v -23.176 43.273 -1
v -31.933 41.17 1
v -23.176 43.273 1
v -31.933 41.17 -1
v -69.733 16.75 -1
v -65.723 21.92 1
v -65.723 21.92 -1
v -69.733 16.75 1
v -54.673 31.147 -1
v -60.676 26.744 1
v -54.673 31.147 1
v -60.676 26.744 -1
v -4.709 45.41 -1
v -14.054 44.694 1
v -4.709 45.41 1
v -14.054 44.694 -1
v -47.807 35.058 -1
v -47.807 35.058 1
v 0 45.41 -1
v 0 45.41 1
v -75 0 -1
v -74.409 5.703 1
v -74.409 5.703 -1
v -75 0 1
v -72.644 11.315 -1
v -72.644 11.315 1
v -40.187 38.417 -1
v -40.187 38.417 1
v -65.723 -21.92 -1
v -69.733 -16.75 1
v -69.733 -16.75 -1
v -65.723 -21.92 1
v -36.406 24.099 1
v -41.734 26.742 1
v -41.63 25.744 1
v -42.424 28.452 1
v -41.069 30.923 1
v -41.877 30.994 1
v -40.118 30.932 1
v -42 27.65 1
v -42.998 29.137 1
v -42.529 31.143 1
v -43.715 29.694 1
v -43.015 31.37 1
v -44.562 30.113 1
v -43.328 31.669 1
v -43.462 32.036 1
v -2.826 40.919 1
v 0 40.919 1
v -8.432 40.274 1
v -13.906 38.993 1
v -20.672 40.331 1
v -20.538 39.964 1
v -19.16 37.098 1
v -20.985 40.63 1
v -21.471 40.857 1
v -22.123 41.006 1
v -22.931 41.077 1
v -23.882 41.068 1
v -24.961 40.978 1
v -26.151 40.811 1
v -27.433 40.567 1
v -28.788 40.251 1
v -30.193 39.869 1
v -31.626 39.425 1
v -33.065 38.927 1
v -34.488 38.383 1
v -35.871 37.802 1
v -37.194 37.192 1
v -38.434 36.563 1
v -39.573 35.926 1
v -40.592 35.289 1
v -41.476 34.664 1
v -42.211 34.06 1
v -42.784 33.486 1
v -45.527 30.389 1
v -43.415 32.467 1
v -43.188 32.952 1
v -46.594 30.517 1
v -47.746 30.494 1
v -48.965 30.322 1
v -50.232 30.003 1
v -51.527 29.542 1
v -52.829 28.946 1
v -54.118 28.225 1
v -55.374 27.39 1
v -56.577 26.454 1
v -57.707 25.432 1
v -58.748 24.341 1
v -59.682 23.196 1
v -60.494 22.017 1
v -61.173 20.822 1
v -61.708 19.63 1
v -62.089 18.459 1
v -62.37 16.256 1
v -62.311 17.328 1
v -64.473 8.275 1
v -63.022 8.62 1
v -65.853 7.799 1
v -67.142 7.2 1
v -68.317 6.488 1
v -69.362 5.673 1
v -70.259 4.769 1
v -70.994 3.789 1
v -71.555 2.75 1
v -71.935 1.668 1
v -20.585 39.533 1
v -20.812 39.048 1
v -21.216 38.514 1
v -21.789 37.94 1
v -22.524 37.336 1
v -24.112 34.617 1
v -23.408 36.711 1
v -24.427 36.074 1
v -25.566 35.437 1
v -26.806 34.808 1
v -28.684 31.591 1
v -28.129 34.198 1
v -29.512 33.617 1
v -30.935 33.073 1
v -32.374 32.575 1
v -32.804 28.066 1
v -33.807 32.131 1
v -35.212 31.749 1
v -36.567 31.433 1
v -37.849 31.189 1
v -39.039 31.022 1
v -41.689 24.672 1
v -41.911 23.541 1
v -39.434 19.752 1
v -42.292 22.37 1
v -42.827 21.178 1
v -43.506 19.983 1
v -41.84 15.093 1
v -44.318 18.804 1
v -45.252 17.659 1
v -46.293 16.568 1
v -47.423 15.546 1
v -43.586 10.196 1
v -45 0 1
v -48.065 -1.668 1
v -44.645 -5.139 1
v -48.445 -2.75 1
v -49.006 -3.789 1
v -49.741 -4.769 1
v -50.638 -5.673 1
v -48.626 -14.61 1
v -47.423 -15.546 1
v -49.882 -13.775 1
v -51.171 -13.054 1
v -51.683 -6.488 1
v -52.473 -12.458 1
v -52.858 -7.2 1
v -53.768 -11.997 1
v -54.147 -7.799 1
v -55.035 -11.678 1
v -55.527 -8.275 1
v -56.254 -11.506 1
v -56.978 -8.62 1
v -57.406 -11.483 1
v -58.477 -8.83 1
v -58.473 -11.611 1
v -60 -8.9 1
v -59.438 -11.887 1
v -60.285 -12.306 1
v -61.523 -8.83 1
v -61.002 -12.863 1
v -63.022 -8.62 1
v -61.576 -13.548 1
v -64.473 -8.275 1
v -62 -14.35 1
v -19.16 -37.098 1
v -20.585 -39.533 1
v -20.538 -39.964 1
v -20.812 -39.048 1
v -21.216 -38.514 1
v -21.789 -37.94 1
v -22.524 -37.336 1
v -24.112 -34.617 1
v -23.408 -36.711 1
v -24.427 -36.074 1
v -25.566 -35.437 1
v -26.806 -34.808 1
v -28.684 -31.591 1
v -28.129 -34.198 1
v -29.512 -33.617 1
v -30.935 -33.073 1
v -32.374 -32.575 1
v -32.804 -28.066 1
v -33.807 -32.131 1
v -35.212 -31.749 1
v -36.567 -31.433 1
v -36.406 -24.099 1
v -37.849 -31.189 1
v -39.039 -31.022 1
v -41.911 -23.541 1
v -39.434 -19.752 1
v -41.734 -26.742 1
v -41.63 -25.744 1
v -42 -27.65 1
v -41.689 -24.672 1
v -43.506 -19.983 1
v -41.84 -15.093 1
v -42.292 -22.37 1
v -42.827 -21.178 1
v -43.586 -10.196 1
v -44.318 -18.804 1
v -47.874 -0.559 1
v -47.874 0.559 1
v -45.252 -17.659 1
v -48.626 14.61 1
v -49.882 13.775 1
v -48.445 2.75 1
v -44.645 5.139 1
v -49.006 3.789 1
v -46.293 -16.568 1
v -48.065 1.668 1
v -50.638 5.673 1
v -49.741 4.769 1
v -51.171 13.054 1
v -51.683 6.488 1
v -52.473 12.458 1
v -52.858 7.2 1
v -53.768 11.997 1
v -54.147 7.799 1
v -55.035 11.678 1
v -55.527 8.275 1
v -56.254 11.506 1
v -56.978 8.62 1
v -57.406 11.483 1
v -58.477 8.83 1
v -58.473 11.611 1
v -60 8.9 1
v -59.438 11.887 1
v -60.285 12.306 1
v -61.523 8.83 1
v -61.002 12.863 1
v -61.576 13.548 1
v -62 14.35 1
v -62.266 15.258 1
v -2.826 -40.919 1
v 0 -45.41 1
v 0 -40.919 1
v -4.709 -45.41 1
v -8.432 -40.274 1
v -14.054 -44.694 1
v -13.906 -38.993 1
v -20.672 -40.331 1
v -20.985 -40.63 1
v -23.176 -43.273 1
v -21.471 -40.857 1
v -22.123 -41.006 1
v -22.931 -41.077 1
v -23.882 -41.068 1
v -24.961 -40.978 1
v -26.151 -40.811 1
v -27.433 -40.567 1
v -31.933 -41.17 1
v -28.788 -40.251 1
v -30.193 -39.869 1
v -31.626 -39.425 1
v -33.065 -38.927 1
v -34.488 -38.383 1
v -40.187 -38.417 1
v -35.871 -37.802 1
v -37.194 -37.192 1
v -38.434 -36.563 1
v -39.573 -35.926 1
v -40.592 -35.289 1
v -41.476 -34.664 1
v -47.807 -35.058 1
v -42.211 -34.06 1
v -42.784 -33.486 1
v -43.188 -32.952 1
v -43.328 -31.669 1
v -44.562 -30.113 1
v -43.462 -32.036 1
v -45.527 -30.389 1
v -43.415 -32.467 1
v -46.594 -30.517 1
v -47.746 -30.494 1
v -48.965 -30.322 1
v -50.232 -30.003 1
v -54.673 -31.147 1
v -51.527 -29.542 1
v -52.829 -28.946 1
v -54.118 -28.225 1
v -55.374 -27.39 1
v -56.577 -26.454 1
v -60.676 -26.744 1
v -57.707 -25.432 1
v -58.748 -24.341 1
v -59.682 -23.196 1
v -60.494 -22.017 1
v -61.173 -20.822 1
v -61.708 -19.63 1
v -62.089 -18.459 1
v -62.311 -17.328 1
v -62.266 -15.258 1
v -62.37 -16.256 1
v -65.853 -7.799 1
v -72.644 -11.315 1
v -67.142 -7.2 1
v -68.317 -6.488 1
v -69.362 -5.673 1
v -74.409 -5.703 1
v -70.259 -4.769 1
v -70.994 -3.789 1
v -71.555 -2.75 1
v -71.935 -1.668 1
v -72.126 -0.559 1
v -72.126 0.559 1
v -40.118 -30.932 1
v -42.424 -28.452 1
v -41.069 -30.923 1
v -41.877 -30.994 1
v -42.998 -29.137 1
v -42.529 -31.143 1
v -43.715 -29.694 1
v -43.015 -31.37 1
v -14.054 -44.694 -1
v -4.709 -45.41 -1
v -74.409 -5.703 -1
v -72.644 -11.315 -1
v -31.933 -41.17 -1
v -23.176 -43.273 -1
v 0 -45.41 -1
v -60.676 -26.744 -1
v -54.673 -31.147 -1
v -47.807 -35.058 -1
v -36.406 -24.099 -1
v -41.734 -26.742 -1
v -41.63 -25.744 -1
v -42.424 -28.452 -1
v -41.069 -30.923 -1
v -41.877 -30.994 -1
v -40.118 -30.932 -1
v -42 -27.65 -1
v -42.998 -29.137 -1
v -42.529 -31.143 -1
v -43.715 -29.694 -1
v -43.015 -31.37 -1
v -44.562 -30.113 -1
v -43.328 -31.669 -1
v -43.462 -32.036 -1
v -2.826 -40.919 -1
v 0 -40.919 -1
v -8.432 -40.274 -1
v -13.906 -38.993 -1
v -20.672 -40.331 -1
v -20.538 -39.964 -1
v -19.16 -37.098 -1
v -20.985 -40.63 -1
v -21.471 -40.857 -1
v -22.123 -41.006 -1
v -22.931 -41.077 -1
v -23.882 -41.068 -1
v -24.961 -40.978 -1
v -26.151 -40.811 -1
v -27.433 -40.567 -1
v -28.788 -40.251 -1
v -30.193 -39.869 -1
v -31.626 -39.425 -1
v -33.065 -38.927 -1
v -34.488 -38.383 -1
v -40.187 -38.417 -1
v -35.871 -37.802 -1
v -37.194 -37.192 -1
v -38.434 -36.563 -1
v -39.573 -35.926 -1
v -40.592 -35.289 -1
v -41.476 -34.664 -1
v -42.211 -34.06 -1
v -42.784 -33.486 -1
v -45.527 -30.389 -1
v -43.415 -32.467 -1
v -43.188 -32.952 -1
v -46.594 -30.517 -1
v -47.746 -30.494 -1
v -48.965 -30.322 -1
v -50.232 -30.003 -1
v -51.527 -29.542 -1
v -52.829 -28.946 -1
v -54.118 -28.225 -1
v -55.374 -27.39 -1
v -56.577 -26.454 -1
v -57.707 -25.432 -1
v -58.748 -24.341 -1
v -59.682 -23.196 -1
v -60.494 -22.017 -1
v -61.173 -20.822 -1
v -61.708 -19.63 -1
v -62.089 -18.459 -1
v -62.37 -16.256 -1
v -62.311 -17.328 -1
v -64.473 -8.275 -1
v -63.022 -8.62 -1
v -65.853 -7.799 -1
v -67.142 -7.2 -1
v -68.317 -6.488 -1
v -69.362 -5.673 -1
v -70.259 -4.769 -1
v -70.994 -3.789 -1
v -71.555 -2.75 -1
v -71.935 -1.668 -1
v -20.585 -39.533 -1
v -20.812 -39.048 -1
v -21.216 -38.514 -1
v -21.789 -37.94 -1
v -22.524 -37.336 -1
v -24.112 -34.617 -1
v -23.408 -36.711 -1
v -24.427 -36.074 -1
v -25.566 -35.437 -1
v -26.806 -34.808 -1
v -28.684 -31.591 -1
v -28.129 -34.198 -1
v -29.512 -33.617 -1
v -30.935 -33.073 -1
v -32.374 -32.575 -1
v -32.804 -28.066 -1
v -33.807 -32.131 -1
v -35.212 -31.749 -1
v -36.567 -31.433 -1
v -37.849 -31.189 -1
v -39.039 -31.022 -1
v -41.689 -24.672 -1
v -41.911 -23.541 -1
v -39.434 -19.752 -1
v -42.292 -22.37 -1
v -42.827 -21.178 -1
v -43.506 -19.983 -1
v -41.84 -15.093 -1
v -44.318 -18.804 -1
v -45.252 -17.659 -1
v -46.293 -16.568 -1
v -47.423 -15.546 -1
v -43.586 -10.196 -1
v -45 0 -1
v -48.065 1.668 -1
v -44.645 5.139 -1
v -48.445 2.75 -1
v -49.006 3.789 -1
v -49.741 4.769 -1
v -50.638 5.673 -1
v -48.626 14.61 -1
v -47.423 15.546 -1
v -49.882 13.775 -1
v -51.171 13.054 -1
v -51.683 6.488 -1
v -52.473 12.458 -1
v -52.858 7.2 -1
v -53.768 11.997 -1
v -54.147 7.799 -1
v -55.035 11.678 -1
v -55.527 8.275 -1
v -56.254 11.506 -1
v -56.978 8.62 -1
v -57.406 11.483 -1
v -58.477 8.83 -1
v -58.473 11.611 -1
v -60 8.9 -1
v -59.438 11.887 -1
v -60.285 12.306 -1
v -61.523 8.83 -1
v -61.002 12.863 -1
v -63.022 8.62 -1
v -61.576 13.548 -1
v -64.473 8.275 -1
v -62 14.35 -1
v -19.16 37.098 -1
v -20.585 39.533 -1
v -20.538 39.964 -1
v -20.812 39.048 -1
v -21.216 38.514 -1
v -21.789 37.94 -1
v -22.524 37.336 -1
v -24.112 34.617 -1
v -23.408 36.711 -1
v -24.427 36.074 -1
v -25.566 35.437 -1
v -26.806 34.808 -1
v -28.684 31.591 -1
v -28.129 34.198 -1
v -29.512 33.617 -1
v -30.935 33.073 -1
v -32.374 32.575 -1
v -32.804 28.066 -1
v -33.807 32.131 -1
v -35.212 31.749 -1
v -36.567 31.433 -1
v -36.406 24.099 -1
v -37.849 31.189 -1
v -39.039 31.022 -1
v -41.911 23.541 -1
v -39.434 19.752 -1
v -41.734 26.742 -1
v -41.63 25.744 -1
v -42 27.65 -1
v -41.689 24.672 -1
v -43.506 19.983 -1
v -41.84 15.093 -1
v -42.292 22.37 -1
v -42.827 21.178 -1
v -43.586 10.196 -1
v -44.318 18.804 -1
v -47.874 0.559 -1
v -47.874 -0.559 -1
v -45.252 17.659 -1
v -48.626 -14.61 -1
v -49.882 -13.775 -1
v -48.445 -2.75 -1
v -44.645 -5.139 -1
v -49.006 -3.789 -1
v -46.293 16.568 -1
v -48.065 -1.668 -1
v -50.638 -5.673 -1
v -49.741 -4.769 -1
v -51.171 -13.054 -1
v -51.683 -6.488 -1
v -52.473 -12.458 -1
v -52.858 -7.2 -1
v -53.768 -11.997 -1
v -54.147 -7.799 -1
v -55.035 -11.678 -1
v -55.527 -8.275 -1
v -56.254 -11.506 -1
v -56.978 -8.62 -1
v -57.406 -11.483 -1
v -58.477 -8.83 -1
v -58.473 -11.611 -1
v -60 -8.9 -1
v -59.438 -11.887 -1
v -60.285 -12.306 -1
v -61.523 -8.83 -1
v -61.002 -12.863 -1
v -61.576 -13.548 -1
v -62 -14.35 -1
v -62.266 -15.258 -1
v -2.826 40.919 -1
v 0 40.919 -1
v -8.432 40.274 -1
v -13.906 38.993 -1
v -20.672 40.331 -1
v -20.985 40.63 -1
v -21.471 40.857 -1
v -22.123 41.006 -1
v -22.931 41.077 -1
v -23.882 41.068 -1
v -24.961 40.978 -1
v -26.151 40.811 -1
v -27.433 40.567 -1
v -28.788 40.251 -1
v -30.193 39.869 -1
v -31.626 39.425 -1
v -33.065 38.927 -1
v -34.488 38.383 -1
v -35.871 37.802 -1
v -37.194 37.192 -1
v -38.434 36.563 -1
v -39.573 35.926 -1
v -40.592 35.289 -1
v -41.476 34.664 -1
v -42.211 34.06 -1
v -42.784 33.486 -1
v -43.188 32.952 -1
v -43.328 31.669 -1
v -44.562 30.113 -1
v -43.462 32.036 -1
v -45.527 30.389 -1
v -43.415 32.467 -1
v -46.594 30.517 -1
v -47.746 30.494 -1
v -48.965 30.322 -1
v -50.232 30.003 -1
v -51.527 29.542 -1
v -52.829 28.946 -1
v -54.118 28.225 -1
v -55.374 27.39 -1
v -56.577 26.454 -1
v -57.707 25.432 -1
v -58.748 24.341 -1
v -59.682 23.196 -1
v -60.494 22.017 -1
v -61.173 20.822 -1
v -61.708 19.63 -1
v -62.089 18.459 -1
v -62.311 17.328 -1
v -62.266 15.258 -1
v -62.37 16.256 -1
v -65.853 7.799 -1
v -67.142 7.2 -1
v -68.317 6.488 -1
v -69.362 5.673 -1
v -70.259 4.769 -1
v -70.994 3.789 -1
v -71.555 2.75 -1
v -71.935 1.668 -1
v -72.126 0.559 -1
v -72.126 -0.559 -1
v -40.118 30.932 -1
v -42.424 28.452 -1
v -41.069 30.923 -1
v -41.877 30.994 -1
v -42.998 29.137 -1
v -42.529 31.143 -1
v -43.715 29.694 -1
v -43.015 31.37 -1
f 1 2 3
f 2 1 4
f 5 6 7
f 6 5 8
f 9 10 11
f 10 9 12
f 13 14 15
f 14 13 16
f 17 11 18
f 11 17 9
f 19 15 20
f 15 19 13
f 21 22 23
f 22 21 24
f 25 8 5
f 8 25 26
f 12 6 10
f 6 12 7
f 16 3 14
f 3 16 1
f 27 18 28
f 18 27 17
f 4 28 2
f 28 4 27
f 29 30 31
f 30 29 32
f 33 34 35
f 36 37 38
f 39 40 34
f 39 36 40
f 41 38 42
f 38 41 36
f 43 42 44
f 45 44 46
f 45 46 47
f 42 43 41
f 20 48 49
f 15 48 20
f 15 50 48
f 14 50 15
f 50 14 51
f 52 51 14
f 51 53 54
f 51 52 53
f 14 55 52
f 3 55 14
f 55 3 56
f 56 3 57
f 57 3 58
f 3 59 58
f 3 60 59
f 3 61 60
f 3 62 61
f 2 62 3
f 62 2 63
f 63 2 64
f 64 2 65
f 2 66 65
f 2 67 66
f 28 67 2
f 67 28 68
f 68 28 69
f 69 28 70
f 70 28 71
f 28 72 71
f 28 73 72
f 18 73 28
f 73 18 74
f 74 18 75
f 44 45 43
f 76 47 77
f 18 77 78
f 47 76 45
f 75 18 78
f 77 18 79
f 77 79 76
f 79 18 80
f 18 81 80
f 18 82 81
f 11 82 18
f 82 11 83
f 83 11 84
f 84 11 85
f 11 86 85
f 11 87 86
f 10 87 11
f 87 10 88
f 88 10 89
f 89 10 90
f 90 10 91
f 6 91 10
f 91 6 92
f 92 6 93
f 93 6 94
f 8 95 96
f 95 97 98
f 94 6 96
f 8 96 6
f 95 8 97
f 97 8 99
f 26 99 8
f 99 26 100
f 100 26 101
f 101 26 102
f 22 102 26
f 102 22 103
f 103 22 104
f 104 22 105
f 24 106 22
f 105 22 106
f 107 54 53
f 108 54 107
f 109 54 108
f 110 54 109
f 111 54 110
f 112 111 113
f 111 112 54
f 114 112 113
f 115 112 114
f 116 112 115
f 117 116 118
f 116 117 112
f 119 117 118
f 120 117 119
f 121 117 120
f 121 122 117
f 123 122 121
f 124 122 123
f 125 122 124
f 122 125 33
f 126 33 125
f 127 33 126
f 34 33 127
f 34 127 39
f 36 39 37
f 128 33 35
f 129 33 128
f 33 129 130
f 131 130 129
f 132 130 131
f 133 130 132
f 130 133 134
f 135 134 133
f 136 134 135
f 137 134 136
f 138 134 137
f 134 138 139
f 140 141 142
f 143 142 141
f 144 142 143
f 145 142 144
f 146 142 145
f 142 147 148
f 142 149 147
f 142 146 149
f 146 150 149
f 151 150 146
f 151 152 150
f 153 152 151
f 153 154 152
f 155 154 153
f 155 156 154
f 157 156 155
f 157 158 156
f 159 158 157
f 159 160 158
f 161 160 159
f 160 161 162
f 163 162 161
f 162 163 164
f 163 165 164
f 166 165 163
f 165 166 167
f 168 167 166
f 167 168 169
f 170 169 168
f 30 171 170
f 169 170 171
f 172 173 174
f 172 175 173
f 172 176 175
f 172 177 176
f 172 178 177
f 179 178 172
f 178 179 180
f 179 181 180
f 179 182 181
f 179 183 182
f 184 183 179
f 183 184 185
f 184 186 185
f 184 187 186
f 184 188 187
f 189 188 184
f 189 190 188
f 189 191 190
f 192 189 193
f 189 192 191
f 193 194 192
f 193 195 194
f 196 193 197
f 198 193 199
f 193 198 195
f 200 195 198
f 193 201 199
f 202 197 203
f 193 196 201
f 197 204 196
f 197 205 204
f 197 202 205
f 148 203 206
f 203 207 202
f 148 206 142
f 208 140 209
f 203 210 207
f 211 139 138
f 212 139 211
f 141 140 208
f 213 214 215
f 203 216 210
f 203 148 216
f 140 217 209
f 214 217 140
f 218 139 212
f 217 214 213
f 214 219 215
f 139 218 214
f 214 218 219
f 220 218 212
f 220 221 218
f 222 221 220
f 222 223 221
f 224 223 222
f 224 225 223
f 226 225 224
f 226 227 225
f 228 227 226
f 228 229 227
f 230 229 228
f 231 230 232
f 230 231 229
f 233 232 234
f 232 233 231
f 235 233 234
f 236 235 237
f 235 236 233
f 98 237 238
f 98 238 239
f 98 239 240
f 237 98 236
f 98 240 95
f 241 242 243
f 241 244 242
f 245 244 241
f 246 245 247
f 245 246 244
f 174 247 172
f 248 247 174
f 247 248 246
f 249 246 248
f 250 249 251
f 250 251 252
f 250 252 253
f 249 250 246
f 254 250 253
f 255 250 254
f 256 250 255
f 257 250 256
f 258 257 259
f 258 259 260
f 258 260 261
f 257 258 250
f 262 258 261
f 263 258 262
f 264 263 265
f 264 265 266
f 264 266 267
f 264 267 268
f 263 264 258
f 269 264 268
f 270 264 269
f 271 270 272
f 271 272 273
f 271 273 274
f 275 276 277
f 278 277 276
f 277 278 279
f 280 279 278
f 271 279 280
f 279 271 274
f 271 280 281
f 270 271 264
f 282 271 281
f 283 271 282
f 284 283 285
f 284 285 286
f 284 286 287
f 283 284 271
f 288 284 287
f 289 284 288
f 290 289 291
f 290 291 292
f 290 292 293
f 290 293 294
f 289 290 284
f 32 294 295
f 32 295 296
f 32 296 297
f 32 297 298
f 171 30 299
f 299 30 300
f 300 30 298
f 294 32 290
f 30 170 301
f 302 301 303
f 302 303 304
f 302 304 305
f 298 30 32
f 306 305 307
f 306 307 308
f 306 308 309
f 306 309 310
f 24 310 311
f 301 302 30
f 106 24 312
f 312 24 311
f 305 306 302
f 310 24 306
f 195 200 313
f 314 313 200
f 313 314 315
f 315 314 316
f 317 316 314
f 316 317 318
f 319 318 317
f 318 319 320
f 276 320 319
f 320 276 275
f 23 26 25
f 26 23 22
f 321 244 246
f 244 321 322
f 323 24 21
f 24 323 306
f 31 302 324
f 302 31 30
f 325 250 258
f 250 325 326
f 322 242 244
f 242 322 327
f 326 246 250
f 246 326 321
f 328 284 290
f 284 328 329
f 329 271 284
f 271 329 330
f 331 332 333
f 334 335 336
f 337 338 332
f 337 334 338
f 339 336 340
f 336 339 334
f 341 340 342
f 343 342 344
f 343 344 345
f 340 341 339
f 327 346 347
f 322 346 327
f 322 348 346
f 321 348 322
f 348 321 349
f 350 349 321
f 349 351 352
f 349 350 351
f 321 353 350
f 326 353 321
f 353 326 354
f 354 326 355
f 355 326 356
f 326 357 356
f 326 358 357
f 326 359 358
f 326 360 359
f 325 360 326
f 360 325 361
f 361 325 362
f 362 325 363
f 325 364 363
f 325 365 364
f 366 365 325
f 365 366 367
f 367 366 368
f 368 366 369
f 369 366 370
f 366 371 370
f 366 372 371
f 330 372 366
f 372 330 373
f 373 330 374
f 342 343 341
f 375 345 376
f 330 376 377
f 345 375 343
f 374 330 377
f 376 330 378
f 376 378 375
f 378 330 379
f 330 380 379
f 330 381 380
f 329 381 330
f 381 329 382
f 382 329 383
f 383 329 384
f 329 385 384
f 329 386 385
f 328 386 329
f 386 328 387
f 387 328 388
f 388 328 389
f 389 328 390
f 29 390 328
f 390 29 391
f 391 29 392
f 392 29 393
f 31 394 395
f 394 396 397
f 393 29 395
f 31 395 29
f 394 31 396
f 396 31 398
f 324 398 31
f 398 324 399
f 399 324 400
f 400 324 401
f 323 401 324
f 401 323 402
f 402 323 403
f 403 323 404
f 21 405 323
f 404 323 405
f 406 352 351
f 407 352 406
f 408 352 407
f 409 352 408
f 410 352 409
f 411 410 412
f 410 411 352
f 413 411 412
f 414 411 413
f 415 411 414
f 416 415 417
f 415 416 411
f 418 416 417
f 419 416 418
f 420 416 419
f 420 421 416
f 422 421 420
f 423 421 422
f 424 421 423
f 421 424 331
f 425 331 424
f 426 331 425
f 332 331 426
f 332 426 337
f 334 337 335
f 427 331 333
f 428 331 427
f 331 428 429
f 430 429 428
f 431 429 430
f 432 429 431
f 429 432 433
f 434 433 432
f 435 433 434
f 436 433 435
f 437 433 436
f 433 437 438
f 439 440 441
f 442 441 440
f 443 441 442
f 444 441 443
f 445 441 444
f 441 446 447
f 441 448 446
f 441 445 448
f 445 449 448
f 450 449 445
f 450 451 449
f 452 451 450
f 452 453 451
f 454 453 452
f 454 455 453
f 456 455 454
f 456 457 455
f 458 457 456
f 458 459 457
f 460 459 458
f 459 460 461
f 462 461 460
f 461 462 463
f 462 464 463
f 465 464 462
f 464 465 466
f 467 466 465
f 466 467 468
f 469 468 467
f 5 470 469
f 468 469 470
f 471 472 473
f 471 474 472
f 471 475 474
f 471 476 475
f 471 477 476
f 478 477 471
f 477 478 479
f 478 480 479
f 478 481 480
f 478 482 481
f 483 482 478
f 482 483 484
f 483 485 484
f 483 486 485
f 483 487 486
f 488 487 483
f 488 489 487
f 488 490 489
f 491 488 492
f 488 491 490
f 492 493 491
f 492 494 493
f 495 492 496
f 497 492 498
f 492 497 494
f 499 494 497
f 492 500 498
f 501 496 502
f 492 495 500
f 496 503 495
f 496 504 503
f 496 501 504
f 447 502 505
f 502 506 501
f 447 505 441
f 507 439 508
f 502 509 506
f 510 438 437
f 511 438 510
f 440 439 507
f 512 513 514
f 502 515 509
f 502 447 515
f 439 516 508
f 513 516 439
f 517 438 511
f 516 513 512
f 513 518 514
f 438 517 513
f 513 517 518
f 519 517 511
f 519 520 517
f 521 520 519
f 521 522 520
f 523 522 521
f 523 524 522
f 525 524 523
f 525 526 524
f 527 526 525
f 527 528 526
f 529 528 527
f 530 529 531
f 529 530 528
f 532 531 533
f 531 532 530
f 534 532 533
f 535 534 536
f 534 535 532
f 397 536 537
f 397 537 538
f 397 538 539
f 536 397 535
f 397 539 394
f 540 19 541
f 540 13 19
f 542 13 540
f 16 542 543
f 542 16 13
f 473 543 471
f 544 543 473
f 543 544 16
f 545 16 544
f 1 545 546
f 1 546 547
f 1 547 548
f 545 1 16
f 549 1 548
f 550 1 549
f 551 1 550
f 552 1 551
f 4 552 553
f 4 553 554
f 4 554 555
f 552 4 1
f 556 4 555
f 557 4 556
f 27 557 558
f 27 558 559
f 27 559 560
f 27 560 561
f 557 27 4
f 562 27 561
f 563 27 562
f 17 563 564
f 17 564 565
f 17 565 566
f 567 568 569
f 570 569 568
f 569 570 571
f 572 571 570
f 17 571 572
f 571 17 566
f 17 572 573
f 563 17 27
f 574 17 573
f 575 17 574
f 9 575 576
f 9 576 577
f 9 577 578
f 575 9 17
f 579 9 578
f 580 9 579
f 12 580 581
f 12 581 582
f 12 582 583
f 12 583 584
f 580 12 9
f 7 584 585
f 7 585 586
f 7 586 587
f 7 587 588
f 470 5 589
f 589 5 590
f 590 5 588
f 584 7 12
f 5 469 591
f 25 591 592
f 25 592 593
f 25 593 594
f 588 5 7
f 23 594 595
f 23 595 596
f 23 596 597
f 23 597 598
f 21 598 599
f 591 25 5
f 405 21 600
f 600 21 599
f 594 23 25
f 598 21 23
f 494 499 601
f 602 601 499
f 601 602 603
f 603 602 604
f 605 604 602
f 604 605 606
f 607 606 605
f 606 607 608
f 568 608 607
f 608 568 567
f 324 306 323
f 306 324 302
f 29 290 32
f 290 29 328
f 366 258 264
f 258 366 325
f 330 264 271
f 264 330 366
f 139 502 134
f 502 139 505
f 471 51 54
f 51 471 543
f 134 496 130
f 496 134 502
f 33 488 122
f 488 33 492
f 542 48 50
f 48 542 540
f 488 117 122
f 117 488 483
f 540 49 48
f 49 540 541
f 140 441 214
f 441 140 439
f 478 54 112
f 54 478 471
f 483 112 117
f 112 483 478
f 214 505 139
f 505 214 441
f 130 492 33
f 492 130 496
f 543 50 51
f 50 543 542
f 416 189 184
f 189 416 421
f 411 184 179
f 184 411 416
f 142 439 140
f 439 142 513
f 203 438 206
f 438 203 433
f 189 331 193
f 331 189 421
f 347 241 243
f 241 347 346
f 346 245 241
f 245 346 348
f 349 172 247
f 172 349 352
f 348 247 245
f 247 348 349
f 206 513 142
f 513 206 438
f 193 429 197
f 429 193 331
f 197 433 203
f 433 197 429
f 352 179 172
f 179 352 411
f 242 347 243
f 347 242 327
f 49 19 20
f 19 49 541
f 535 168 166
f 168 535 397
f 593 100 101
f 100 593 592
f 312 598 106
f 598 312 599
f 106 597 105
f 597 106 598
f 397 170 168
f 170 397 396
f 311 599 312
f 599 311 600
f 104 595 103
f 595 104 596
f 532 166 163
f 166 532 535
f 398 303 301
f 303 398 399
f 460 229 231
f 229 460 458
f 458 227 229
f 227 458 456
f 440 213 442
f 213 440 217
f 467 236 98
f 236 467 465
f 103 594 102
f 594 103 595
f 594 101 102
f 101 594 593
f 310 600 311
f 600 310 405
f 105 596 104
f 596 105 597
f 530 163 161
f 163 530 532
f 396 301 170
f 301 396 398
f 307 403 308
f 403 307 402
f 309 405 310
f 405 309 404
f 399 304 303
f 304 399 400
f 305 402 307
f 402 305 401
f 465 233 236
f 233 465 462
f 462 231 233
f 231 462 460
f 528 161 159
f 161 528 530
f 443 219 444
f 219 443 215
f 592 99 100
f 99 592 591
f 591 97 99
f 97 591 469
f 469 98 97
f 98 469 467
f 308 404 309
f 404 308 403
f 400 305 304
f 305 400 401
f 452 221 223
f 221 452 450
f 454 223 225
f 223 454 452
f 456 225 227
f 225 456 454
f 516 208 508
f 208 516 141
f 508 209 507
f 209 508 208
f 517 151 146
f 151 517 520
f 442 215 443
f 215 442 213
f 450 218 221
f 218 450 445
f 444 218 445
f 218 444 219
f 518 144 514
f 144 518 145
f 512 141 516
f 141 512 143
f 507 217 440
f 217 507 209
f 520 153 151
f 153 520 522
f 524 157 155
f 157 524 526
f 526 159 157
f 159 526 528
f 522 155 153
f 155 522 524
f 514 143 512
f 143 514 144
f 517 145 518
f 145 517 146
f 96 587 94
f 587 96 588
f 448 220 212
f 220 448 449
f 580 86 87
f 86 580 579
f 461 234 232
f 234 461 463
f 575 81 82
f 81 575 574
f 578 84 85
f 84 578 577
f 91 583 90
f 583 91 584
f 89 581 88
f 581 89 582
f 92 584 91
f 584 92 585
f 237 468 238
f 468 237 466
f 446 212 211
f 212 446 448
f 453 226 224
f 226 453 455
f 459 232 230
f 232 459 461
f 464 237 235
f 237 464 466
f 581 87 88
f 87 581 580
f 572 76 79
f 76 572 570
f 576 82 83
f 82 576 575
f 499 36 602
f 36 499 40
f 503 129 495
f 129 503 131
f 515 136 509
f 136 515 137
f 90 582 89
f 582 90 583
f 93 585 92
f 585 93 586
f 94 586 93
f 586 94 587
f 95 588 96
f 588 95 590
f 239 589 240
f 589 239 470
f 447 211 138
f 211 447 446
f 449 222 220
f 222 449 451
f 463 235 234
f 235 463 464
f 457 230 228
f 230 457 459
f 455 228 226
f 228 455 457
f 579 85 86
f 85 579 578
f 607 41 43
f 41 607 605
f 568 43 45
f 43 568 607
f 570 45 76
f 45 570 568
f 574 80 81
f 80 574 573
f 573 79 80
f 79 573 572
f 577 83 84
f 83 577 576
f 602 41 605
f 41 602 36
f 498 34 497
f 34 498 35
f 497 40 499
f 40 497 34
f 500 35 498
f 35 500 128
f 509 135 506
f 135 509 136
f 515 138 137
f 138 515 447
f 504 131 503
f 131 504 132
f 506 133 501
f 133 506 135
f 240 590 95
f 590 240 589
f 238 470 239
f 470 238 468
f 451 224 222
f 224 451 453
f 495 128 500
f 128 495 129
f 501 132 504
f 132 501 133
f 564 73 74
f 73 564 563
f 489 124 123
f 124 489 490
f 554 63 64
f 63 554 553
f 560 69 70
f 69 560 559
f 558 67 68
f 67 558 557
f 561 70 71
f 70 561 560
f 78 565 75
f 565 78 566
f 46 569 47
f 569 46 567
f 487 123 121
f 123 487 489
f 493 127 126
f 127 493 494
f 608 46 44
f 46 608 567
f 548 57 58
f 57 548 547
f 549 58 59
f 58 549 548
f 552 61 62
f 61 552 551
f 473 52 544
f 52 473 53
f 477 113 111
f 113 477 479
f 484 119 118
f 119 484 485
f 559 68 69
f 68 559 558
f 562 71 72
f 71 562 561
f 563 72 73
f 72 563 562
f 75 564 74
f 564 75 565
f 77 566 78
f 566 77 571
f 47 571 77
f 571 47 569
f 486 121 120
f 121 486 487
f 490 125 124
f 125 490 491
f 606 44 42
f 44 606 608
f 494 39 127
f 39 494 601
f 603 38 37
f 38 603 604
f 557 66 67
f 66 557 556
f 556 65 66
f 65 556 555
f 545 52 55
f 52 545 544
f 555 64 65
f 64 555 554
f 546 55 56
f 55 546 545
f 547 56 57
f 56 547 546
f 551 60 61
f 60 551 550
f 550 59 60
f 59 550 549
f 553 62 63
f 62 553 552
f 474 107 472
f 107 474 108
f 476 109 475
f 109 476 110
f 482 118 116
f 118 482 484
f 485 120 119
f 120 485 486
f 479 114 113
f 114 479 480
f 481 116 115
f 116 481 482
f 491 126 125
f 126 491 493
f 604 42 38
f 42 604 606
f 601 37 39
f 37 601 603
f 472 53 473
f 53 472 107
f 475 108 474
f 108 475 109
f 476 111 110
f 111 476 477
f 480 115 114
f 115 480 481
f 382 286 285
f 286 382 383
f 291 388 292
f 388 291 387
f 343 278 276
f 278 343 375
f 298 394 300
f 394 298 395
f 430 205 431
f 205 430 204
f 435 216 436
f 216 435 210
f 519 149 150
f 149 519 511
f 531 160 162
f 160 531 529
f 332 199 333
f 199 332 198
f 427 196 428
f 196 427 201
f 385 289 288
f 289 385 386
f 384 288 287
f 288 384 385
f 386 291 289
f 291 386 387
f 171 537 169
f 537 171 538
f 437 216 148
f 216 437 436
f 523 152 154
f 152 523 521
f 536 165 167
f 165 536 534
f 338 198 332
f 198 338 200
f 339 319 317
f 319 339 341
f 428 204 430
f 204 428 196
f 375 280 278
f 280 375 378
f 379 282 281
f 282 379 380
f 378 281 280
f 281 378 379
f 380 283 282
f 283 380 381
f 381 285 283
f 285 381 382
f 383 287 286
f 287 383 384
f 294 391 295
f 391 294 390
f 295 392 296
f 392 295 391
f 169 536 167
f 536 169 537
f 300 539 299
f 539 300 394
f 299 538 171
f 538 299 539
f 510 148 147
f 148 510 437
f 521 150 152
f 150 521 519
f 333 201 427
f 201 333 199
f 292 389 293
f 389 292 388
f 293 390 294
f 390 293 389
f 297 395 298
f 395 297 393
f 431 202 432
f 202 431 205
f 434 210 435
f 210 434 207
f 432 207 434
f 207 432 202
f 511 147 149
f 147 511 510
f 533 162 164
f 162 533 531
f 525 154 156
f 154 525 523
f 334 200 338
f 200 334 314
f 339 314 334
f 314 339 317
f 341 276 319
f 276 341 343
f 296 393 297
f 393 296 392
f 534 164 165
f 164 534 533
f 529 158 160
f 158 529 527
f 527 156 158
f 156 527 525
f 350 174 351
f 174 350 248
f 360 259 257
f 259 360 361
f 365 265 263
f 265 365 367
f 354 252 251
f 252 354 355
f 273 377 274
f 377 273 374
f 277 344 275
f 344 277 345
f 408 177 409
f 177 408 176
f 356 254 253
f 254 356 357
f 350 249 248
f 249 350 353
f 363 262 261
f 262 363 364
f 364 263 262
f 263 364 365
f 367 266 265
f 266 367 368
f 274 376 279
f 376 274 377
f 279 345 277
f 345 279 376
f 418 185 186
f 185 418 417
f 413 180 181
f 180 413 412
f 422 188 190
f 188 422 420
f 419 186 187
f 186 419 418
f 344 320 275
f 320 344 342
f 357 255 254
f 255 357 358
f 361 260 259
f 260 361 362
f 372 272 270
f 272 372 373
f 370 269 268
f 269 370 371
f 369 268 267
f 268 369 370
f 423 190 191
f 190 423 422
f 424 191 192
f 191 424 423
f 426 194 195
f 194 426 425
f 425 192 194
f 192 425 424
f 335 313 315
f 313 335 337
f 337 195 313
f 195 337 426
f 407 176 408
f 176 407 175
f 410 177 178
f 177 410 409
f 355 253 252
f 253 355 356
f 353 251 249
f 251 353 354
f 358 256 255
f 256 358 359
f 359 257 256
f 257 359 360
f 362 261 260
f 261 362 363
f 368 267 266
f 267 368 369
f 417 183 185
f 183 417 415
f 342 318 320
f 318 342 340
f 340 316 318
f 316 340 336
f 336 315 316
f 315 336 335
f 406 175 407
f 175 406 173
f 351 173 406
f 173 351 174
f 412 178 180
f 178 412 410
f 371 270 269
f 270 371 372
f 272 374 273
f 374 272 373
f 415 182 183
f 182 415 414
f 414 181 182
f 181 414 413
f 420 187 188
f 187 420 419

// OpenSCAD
// ellipsoidal was measured as 23.8mm by 17.3
ellipse_1 = 17.8; // 17.3;
ellipse_2 = 24.3; // 23.8;

module core_ellipse(wall_thickness=3) {
  scale([1,ellipse_2/ellipse_1,1]) {
    difference() {
      cylinder(h=2, d=ellipse_1+wall_thickness, center=true, $fn=50);
      cylinder(h=2, d=ellipse_1, center=true, $fn=50);
    }
  }
}

// core_ellipse();

od_1 = 91.0;
od_2 = 150; // guess

id_1 = 82; // guess
id_2 = 90; // guess

difference() {
  difference() {
    scale([od_2/od_1,1,1]) {
      cylinder(h=2, d=od_1, center=true, $fn=50);
    }
    scale([id_2/id_1,1,1]) {
      cylinder(h=2, d=id_1, center=true, $fn=50);
    }
  }
  translate([40,0,0]) cube([80,100,2], center=true);
  translate([-60,0,0]) rotate([0,0,90]) scale([1,ellipse_2/ellipse_1,1]) cylinder(h=2, d=ellipse_1, center=true, $fn=50);

  translate([-52,21,0]) rotate([0,0,130]) scale([0.8,ellipse_2/ellipse_1,1]) cylinder(h=2, d=ellipse_1, center=true, $fn=50);

  translate([-32,36,0]) rotate([0,0,110]) scale([0.35,ellipse_2/ellipse_1,1]) cylinder(h=2, d=ellipse_1, center=true, $fn=50);

  mirror([0,1,0]) translate([-52,21,0]) rotate([0,0,130]) scale([0.8,ellipse_2/ellipse_1,1]) cylinder(h=2, d=ellipse_1, center=true, $fn=50);

  mirror([0,1,0]) translate([-32,36,0]) rotate([0,0,110]) scale([0.35,ellipse_2/ellipse_1,1]) cylinder(h=2, d=ellipse_1, center=true, $fn=50);
}
